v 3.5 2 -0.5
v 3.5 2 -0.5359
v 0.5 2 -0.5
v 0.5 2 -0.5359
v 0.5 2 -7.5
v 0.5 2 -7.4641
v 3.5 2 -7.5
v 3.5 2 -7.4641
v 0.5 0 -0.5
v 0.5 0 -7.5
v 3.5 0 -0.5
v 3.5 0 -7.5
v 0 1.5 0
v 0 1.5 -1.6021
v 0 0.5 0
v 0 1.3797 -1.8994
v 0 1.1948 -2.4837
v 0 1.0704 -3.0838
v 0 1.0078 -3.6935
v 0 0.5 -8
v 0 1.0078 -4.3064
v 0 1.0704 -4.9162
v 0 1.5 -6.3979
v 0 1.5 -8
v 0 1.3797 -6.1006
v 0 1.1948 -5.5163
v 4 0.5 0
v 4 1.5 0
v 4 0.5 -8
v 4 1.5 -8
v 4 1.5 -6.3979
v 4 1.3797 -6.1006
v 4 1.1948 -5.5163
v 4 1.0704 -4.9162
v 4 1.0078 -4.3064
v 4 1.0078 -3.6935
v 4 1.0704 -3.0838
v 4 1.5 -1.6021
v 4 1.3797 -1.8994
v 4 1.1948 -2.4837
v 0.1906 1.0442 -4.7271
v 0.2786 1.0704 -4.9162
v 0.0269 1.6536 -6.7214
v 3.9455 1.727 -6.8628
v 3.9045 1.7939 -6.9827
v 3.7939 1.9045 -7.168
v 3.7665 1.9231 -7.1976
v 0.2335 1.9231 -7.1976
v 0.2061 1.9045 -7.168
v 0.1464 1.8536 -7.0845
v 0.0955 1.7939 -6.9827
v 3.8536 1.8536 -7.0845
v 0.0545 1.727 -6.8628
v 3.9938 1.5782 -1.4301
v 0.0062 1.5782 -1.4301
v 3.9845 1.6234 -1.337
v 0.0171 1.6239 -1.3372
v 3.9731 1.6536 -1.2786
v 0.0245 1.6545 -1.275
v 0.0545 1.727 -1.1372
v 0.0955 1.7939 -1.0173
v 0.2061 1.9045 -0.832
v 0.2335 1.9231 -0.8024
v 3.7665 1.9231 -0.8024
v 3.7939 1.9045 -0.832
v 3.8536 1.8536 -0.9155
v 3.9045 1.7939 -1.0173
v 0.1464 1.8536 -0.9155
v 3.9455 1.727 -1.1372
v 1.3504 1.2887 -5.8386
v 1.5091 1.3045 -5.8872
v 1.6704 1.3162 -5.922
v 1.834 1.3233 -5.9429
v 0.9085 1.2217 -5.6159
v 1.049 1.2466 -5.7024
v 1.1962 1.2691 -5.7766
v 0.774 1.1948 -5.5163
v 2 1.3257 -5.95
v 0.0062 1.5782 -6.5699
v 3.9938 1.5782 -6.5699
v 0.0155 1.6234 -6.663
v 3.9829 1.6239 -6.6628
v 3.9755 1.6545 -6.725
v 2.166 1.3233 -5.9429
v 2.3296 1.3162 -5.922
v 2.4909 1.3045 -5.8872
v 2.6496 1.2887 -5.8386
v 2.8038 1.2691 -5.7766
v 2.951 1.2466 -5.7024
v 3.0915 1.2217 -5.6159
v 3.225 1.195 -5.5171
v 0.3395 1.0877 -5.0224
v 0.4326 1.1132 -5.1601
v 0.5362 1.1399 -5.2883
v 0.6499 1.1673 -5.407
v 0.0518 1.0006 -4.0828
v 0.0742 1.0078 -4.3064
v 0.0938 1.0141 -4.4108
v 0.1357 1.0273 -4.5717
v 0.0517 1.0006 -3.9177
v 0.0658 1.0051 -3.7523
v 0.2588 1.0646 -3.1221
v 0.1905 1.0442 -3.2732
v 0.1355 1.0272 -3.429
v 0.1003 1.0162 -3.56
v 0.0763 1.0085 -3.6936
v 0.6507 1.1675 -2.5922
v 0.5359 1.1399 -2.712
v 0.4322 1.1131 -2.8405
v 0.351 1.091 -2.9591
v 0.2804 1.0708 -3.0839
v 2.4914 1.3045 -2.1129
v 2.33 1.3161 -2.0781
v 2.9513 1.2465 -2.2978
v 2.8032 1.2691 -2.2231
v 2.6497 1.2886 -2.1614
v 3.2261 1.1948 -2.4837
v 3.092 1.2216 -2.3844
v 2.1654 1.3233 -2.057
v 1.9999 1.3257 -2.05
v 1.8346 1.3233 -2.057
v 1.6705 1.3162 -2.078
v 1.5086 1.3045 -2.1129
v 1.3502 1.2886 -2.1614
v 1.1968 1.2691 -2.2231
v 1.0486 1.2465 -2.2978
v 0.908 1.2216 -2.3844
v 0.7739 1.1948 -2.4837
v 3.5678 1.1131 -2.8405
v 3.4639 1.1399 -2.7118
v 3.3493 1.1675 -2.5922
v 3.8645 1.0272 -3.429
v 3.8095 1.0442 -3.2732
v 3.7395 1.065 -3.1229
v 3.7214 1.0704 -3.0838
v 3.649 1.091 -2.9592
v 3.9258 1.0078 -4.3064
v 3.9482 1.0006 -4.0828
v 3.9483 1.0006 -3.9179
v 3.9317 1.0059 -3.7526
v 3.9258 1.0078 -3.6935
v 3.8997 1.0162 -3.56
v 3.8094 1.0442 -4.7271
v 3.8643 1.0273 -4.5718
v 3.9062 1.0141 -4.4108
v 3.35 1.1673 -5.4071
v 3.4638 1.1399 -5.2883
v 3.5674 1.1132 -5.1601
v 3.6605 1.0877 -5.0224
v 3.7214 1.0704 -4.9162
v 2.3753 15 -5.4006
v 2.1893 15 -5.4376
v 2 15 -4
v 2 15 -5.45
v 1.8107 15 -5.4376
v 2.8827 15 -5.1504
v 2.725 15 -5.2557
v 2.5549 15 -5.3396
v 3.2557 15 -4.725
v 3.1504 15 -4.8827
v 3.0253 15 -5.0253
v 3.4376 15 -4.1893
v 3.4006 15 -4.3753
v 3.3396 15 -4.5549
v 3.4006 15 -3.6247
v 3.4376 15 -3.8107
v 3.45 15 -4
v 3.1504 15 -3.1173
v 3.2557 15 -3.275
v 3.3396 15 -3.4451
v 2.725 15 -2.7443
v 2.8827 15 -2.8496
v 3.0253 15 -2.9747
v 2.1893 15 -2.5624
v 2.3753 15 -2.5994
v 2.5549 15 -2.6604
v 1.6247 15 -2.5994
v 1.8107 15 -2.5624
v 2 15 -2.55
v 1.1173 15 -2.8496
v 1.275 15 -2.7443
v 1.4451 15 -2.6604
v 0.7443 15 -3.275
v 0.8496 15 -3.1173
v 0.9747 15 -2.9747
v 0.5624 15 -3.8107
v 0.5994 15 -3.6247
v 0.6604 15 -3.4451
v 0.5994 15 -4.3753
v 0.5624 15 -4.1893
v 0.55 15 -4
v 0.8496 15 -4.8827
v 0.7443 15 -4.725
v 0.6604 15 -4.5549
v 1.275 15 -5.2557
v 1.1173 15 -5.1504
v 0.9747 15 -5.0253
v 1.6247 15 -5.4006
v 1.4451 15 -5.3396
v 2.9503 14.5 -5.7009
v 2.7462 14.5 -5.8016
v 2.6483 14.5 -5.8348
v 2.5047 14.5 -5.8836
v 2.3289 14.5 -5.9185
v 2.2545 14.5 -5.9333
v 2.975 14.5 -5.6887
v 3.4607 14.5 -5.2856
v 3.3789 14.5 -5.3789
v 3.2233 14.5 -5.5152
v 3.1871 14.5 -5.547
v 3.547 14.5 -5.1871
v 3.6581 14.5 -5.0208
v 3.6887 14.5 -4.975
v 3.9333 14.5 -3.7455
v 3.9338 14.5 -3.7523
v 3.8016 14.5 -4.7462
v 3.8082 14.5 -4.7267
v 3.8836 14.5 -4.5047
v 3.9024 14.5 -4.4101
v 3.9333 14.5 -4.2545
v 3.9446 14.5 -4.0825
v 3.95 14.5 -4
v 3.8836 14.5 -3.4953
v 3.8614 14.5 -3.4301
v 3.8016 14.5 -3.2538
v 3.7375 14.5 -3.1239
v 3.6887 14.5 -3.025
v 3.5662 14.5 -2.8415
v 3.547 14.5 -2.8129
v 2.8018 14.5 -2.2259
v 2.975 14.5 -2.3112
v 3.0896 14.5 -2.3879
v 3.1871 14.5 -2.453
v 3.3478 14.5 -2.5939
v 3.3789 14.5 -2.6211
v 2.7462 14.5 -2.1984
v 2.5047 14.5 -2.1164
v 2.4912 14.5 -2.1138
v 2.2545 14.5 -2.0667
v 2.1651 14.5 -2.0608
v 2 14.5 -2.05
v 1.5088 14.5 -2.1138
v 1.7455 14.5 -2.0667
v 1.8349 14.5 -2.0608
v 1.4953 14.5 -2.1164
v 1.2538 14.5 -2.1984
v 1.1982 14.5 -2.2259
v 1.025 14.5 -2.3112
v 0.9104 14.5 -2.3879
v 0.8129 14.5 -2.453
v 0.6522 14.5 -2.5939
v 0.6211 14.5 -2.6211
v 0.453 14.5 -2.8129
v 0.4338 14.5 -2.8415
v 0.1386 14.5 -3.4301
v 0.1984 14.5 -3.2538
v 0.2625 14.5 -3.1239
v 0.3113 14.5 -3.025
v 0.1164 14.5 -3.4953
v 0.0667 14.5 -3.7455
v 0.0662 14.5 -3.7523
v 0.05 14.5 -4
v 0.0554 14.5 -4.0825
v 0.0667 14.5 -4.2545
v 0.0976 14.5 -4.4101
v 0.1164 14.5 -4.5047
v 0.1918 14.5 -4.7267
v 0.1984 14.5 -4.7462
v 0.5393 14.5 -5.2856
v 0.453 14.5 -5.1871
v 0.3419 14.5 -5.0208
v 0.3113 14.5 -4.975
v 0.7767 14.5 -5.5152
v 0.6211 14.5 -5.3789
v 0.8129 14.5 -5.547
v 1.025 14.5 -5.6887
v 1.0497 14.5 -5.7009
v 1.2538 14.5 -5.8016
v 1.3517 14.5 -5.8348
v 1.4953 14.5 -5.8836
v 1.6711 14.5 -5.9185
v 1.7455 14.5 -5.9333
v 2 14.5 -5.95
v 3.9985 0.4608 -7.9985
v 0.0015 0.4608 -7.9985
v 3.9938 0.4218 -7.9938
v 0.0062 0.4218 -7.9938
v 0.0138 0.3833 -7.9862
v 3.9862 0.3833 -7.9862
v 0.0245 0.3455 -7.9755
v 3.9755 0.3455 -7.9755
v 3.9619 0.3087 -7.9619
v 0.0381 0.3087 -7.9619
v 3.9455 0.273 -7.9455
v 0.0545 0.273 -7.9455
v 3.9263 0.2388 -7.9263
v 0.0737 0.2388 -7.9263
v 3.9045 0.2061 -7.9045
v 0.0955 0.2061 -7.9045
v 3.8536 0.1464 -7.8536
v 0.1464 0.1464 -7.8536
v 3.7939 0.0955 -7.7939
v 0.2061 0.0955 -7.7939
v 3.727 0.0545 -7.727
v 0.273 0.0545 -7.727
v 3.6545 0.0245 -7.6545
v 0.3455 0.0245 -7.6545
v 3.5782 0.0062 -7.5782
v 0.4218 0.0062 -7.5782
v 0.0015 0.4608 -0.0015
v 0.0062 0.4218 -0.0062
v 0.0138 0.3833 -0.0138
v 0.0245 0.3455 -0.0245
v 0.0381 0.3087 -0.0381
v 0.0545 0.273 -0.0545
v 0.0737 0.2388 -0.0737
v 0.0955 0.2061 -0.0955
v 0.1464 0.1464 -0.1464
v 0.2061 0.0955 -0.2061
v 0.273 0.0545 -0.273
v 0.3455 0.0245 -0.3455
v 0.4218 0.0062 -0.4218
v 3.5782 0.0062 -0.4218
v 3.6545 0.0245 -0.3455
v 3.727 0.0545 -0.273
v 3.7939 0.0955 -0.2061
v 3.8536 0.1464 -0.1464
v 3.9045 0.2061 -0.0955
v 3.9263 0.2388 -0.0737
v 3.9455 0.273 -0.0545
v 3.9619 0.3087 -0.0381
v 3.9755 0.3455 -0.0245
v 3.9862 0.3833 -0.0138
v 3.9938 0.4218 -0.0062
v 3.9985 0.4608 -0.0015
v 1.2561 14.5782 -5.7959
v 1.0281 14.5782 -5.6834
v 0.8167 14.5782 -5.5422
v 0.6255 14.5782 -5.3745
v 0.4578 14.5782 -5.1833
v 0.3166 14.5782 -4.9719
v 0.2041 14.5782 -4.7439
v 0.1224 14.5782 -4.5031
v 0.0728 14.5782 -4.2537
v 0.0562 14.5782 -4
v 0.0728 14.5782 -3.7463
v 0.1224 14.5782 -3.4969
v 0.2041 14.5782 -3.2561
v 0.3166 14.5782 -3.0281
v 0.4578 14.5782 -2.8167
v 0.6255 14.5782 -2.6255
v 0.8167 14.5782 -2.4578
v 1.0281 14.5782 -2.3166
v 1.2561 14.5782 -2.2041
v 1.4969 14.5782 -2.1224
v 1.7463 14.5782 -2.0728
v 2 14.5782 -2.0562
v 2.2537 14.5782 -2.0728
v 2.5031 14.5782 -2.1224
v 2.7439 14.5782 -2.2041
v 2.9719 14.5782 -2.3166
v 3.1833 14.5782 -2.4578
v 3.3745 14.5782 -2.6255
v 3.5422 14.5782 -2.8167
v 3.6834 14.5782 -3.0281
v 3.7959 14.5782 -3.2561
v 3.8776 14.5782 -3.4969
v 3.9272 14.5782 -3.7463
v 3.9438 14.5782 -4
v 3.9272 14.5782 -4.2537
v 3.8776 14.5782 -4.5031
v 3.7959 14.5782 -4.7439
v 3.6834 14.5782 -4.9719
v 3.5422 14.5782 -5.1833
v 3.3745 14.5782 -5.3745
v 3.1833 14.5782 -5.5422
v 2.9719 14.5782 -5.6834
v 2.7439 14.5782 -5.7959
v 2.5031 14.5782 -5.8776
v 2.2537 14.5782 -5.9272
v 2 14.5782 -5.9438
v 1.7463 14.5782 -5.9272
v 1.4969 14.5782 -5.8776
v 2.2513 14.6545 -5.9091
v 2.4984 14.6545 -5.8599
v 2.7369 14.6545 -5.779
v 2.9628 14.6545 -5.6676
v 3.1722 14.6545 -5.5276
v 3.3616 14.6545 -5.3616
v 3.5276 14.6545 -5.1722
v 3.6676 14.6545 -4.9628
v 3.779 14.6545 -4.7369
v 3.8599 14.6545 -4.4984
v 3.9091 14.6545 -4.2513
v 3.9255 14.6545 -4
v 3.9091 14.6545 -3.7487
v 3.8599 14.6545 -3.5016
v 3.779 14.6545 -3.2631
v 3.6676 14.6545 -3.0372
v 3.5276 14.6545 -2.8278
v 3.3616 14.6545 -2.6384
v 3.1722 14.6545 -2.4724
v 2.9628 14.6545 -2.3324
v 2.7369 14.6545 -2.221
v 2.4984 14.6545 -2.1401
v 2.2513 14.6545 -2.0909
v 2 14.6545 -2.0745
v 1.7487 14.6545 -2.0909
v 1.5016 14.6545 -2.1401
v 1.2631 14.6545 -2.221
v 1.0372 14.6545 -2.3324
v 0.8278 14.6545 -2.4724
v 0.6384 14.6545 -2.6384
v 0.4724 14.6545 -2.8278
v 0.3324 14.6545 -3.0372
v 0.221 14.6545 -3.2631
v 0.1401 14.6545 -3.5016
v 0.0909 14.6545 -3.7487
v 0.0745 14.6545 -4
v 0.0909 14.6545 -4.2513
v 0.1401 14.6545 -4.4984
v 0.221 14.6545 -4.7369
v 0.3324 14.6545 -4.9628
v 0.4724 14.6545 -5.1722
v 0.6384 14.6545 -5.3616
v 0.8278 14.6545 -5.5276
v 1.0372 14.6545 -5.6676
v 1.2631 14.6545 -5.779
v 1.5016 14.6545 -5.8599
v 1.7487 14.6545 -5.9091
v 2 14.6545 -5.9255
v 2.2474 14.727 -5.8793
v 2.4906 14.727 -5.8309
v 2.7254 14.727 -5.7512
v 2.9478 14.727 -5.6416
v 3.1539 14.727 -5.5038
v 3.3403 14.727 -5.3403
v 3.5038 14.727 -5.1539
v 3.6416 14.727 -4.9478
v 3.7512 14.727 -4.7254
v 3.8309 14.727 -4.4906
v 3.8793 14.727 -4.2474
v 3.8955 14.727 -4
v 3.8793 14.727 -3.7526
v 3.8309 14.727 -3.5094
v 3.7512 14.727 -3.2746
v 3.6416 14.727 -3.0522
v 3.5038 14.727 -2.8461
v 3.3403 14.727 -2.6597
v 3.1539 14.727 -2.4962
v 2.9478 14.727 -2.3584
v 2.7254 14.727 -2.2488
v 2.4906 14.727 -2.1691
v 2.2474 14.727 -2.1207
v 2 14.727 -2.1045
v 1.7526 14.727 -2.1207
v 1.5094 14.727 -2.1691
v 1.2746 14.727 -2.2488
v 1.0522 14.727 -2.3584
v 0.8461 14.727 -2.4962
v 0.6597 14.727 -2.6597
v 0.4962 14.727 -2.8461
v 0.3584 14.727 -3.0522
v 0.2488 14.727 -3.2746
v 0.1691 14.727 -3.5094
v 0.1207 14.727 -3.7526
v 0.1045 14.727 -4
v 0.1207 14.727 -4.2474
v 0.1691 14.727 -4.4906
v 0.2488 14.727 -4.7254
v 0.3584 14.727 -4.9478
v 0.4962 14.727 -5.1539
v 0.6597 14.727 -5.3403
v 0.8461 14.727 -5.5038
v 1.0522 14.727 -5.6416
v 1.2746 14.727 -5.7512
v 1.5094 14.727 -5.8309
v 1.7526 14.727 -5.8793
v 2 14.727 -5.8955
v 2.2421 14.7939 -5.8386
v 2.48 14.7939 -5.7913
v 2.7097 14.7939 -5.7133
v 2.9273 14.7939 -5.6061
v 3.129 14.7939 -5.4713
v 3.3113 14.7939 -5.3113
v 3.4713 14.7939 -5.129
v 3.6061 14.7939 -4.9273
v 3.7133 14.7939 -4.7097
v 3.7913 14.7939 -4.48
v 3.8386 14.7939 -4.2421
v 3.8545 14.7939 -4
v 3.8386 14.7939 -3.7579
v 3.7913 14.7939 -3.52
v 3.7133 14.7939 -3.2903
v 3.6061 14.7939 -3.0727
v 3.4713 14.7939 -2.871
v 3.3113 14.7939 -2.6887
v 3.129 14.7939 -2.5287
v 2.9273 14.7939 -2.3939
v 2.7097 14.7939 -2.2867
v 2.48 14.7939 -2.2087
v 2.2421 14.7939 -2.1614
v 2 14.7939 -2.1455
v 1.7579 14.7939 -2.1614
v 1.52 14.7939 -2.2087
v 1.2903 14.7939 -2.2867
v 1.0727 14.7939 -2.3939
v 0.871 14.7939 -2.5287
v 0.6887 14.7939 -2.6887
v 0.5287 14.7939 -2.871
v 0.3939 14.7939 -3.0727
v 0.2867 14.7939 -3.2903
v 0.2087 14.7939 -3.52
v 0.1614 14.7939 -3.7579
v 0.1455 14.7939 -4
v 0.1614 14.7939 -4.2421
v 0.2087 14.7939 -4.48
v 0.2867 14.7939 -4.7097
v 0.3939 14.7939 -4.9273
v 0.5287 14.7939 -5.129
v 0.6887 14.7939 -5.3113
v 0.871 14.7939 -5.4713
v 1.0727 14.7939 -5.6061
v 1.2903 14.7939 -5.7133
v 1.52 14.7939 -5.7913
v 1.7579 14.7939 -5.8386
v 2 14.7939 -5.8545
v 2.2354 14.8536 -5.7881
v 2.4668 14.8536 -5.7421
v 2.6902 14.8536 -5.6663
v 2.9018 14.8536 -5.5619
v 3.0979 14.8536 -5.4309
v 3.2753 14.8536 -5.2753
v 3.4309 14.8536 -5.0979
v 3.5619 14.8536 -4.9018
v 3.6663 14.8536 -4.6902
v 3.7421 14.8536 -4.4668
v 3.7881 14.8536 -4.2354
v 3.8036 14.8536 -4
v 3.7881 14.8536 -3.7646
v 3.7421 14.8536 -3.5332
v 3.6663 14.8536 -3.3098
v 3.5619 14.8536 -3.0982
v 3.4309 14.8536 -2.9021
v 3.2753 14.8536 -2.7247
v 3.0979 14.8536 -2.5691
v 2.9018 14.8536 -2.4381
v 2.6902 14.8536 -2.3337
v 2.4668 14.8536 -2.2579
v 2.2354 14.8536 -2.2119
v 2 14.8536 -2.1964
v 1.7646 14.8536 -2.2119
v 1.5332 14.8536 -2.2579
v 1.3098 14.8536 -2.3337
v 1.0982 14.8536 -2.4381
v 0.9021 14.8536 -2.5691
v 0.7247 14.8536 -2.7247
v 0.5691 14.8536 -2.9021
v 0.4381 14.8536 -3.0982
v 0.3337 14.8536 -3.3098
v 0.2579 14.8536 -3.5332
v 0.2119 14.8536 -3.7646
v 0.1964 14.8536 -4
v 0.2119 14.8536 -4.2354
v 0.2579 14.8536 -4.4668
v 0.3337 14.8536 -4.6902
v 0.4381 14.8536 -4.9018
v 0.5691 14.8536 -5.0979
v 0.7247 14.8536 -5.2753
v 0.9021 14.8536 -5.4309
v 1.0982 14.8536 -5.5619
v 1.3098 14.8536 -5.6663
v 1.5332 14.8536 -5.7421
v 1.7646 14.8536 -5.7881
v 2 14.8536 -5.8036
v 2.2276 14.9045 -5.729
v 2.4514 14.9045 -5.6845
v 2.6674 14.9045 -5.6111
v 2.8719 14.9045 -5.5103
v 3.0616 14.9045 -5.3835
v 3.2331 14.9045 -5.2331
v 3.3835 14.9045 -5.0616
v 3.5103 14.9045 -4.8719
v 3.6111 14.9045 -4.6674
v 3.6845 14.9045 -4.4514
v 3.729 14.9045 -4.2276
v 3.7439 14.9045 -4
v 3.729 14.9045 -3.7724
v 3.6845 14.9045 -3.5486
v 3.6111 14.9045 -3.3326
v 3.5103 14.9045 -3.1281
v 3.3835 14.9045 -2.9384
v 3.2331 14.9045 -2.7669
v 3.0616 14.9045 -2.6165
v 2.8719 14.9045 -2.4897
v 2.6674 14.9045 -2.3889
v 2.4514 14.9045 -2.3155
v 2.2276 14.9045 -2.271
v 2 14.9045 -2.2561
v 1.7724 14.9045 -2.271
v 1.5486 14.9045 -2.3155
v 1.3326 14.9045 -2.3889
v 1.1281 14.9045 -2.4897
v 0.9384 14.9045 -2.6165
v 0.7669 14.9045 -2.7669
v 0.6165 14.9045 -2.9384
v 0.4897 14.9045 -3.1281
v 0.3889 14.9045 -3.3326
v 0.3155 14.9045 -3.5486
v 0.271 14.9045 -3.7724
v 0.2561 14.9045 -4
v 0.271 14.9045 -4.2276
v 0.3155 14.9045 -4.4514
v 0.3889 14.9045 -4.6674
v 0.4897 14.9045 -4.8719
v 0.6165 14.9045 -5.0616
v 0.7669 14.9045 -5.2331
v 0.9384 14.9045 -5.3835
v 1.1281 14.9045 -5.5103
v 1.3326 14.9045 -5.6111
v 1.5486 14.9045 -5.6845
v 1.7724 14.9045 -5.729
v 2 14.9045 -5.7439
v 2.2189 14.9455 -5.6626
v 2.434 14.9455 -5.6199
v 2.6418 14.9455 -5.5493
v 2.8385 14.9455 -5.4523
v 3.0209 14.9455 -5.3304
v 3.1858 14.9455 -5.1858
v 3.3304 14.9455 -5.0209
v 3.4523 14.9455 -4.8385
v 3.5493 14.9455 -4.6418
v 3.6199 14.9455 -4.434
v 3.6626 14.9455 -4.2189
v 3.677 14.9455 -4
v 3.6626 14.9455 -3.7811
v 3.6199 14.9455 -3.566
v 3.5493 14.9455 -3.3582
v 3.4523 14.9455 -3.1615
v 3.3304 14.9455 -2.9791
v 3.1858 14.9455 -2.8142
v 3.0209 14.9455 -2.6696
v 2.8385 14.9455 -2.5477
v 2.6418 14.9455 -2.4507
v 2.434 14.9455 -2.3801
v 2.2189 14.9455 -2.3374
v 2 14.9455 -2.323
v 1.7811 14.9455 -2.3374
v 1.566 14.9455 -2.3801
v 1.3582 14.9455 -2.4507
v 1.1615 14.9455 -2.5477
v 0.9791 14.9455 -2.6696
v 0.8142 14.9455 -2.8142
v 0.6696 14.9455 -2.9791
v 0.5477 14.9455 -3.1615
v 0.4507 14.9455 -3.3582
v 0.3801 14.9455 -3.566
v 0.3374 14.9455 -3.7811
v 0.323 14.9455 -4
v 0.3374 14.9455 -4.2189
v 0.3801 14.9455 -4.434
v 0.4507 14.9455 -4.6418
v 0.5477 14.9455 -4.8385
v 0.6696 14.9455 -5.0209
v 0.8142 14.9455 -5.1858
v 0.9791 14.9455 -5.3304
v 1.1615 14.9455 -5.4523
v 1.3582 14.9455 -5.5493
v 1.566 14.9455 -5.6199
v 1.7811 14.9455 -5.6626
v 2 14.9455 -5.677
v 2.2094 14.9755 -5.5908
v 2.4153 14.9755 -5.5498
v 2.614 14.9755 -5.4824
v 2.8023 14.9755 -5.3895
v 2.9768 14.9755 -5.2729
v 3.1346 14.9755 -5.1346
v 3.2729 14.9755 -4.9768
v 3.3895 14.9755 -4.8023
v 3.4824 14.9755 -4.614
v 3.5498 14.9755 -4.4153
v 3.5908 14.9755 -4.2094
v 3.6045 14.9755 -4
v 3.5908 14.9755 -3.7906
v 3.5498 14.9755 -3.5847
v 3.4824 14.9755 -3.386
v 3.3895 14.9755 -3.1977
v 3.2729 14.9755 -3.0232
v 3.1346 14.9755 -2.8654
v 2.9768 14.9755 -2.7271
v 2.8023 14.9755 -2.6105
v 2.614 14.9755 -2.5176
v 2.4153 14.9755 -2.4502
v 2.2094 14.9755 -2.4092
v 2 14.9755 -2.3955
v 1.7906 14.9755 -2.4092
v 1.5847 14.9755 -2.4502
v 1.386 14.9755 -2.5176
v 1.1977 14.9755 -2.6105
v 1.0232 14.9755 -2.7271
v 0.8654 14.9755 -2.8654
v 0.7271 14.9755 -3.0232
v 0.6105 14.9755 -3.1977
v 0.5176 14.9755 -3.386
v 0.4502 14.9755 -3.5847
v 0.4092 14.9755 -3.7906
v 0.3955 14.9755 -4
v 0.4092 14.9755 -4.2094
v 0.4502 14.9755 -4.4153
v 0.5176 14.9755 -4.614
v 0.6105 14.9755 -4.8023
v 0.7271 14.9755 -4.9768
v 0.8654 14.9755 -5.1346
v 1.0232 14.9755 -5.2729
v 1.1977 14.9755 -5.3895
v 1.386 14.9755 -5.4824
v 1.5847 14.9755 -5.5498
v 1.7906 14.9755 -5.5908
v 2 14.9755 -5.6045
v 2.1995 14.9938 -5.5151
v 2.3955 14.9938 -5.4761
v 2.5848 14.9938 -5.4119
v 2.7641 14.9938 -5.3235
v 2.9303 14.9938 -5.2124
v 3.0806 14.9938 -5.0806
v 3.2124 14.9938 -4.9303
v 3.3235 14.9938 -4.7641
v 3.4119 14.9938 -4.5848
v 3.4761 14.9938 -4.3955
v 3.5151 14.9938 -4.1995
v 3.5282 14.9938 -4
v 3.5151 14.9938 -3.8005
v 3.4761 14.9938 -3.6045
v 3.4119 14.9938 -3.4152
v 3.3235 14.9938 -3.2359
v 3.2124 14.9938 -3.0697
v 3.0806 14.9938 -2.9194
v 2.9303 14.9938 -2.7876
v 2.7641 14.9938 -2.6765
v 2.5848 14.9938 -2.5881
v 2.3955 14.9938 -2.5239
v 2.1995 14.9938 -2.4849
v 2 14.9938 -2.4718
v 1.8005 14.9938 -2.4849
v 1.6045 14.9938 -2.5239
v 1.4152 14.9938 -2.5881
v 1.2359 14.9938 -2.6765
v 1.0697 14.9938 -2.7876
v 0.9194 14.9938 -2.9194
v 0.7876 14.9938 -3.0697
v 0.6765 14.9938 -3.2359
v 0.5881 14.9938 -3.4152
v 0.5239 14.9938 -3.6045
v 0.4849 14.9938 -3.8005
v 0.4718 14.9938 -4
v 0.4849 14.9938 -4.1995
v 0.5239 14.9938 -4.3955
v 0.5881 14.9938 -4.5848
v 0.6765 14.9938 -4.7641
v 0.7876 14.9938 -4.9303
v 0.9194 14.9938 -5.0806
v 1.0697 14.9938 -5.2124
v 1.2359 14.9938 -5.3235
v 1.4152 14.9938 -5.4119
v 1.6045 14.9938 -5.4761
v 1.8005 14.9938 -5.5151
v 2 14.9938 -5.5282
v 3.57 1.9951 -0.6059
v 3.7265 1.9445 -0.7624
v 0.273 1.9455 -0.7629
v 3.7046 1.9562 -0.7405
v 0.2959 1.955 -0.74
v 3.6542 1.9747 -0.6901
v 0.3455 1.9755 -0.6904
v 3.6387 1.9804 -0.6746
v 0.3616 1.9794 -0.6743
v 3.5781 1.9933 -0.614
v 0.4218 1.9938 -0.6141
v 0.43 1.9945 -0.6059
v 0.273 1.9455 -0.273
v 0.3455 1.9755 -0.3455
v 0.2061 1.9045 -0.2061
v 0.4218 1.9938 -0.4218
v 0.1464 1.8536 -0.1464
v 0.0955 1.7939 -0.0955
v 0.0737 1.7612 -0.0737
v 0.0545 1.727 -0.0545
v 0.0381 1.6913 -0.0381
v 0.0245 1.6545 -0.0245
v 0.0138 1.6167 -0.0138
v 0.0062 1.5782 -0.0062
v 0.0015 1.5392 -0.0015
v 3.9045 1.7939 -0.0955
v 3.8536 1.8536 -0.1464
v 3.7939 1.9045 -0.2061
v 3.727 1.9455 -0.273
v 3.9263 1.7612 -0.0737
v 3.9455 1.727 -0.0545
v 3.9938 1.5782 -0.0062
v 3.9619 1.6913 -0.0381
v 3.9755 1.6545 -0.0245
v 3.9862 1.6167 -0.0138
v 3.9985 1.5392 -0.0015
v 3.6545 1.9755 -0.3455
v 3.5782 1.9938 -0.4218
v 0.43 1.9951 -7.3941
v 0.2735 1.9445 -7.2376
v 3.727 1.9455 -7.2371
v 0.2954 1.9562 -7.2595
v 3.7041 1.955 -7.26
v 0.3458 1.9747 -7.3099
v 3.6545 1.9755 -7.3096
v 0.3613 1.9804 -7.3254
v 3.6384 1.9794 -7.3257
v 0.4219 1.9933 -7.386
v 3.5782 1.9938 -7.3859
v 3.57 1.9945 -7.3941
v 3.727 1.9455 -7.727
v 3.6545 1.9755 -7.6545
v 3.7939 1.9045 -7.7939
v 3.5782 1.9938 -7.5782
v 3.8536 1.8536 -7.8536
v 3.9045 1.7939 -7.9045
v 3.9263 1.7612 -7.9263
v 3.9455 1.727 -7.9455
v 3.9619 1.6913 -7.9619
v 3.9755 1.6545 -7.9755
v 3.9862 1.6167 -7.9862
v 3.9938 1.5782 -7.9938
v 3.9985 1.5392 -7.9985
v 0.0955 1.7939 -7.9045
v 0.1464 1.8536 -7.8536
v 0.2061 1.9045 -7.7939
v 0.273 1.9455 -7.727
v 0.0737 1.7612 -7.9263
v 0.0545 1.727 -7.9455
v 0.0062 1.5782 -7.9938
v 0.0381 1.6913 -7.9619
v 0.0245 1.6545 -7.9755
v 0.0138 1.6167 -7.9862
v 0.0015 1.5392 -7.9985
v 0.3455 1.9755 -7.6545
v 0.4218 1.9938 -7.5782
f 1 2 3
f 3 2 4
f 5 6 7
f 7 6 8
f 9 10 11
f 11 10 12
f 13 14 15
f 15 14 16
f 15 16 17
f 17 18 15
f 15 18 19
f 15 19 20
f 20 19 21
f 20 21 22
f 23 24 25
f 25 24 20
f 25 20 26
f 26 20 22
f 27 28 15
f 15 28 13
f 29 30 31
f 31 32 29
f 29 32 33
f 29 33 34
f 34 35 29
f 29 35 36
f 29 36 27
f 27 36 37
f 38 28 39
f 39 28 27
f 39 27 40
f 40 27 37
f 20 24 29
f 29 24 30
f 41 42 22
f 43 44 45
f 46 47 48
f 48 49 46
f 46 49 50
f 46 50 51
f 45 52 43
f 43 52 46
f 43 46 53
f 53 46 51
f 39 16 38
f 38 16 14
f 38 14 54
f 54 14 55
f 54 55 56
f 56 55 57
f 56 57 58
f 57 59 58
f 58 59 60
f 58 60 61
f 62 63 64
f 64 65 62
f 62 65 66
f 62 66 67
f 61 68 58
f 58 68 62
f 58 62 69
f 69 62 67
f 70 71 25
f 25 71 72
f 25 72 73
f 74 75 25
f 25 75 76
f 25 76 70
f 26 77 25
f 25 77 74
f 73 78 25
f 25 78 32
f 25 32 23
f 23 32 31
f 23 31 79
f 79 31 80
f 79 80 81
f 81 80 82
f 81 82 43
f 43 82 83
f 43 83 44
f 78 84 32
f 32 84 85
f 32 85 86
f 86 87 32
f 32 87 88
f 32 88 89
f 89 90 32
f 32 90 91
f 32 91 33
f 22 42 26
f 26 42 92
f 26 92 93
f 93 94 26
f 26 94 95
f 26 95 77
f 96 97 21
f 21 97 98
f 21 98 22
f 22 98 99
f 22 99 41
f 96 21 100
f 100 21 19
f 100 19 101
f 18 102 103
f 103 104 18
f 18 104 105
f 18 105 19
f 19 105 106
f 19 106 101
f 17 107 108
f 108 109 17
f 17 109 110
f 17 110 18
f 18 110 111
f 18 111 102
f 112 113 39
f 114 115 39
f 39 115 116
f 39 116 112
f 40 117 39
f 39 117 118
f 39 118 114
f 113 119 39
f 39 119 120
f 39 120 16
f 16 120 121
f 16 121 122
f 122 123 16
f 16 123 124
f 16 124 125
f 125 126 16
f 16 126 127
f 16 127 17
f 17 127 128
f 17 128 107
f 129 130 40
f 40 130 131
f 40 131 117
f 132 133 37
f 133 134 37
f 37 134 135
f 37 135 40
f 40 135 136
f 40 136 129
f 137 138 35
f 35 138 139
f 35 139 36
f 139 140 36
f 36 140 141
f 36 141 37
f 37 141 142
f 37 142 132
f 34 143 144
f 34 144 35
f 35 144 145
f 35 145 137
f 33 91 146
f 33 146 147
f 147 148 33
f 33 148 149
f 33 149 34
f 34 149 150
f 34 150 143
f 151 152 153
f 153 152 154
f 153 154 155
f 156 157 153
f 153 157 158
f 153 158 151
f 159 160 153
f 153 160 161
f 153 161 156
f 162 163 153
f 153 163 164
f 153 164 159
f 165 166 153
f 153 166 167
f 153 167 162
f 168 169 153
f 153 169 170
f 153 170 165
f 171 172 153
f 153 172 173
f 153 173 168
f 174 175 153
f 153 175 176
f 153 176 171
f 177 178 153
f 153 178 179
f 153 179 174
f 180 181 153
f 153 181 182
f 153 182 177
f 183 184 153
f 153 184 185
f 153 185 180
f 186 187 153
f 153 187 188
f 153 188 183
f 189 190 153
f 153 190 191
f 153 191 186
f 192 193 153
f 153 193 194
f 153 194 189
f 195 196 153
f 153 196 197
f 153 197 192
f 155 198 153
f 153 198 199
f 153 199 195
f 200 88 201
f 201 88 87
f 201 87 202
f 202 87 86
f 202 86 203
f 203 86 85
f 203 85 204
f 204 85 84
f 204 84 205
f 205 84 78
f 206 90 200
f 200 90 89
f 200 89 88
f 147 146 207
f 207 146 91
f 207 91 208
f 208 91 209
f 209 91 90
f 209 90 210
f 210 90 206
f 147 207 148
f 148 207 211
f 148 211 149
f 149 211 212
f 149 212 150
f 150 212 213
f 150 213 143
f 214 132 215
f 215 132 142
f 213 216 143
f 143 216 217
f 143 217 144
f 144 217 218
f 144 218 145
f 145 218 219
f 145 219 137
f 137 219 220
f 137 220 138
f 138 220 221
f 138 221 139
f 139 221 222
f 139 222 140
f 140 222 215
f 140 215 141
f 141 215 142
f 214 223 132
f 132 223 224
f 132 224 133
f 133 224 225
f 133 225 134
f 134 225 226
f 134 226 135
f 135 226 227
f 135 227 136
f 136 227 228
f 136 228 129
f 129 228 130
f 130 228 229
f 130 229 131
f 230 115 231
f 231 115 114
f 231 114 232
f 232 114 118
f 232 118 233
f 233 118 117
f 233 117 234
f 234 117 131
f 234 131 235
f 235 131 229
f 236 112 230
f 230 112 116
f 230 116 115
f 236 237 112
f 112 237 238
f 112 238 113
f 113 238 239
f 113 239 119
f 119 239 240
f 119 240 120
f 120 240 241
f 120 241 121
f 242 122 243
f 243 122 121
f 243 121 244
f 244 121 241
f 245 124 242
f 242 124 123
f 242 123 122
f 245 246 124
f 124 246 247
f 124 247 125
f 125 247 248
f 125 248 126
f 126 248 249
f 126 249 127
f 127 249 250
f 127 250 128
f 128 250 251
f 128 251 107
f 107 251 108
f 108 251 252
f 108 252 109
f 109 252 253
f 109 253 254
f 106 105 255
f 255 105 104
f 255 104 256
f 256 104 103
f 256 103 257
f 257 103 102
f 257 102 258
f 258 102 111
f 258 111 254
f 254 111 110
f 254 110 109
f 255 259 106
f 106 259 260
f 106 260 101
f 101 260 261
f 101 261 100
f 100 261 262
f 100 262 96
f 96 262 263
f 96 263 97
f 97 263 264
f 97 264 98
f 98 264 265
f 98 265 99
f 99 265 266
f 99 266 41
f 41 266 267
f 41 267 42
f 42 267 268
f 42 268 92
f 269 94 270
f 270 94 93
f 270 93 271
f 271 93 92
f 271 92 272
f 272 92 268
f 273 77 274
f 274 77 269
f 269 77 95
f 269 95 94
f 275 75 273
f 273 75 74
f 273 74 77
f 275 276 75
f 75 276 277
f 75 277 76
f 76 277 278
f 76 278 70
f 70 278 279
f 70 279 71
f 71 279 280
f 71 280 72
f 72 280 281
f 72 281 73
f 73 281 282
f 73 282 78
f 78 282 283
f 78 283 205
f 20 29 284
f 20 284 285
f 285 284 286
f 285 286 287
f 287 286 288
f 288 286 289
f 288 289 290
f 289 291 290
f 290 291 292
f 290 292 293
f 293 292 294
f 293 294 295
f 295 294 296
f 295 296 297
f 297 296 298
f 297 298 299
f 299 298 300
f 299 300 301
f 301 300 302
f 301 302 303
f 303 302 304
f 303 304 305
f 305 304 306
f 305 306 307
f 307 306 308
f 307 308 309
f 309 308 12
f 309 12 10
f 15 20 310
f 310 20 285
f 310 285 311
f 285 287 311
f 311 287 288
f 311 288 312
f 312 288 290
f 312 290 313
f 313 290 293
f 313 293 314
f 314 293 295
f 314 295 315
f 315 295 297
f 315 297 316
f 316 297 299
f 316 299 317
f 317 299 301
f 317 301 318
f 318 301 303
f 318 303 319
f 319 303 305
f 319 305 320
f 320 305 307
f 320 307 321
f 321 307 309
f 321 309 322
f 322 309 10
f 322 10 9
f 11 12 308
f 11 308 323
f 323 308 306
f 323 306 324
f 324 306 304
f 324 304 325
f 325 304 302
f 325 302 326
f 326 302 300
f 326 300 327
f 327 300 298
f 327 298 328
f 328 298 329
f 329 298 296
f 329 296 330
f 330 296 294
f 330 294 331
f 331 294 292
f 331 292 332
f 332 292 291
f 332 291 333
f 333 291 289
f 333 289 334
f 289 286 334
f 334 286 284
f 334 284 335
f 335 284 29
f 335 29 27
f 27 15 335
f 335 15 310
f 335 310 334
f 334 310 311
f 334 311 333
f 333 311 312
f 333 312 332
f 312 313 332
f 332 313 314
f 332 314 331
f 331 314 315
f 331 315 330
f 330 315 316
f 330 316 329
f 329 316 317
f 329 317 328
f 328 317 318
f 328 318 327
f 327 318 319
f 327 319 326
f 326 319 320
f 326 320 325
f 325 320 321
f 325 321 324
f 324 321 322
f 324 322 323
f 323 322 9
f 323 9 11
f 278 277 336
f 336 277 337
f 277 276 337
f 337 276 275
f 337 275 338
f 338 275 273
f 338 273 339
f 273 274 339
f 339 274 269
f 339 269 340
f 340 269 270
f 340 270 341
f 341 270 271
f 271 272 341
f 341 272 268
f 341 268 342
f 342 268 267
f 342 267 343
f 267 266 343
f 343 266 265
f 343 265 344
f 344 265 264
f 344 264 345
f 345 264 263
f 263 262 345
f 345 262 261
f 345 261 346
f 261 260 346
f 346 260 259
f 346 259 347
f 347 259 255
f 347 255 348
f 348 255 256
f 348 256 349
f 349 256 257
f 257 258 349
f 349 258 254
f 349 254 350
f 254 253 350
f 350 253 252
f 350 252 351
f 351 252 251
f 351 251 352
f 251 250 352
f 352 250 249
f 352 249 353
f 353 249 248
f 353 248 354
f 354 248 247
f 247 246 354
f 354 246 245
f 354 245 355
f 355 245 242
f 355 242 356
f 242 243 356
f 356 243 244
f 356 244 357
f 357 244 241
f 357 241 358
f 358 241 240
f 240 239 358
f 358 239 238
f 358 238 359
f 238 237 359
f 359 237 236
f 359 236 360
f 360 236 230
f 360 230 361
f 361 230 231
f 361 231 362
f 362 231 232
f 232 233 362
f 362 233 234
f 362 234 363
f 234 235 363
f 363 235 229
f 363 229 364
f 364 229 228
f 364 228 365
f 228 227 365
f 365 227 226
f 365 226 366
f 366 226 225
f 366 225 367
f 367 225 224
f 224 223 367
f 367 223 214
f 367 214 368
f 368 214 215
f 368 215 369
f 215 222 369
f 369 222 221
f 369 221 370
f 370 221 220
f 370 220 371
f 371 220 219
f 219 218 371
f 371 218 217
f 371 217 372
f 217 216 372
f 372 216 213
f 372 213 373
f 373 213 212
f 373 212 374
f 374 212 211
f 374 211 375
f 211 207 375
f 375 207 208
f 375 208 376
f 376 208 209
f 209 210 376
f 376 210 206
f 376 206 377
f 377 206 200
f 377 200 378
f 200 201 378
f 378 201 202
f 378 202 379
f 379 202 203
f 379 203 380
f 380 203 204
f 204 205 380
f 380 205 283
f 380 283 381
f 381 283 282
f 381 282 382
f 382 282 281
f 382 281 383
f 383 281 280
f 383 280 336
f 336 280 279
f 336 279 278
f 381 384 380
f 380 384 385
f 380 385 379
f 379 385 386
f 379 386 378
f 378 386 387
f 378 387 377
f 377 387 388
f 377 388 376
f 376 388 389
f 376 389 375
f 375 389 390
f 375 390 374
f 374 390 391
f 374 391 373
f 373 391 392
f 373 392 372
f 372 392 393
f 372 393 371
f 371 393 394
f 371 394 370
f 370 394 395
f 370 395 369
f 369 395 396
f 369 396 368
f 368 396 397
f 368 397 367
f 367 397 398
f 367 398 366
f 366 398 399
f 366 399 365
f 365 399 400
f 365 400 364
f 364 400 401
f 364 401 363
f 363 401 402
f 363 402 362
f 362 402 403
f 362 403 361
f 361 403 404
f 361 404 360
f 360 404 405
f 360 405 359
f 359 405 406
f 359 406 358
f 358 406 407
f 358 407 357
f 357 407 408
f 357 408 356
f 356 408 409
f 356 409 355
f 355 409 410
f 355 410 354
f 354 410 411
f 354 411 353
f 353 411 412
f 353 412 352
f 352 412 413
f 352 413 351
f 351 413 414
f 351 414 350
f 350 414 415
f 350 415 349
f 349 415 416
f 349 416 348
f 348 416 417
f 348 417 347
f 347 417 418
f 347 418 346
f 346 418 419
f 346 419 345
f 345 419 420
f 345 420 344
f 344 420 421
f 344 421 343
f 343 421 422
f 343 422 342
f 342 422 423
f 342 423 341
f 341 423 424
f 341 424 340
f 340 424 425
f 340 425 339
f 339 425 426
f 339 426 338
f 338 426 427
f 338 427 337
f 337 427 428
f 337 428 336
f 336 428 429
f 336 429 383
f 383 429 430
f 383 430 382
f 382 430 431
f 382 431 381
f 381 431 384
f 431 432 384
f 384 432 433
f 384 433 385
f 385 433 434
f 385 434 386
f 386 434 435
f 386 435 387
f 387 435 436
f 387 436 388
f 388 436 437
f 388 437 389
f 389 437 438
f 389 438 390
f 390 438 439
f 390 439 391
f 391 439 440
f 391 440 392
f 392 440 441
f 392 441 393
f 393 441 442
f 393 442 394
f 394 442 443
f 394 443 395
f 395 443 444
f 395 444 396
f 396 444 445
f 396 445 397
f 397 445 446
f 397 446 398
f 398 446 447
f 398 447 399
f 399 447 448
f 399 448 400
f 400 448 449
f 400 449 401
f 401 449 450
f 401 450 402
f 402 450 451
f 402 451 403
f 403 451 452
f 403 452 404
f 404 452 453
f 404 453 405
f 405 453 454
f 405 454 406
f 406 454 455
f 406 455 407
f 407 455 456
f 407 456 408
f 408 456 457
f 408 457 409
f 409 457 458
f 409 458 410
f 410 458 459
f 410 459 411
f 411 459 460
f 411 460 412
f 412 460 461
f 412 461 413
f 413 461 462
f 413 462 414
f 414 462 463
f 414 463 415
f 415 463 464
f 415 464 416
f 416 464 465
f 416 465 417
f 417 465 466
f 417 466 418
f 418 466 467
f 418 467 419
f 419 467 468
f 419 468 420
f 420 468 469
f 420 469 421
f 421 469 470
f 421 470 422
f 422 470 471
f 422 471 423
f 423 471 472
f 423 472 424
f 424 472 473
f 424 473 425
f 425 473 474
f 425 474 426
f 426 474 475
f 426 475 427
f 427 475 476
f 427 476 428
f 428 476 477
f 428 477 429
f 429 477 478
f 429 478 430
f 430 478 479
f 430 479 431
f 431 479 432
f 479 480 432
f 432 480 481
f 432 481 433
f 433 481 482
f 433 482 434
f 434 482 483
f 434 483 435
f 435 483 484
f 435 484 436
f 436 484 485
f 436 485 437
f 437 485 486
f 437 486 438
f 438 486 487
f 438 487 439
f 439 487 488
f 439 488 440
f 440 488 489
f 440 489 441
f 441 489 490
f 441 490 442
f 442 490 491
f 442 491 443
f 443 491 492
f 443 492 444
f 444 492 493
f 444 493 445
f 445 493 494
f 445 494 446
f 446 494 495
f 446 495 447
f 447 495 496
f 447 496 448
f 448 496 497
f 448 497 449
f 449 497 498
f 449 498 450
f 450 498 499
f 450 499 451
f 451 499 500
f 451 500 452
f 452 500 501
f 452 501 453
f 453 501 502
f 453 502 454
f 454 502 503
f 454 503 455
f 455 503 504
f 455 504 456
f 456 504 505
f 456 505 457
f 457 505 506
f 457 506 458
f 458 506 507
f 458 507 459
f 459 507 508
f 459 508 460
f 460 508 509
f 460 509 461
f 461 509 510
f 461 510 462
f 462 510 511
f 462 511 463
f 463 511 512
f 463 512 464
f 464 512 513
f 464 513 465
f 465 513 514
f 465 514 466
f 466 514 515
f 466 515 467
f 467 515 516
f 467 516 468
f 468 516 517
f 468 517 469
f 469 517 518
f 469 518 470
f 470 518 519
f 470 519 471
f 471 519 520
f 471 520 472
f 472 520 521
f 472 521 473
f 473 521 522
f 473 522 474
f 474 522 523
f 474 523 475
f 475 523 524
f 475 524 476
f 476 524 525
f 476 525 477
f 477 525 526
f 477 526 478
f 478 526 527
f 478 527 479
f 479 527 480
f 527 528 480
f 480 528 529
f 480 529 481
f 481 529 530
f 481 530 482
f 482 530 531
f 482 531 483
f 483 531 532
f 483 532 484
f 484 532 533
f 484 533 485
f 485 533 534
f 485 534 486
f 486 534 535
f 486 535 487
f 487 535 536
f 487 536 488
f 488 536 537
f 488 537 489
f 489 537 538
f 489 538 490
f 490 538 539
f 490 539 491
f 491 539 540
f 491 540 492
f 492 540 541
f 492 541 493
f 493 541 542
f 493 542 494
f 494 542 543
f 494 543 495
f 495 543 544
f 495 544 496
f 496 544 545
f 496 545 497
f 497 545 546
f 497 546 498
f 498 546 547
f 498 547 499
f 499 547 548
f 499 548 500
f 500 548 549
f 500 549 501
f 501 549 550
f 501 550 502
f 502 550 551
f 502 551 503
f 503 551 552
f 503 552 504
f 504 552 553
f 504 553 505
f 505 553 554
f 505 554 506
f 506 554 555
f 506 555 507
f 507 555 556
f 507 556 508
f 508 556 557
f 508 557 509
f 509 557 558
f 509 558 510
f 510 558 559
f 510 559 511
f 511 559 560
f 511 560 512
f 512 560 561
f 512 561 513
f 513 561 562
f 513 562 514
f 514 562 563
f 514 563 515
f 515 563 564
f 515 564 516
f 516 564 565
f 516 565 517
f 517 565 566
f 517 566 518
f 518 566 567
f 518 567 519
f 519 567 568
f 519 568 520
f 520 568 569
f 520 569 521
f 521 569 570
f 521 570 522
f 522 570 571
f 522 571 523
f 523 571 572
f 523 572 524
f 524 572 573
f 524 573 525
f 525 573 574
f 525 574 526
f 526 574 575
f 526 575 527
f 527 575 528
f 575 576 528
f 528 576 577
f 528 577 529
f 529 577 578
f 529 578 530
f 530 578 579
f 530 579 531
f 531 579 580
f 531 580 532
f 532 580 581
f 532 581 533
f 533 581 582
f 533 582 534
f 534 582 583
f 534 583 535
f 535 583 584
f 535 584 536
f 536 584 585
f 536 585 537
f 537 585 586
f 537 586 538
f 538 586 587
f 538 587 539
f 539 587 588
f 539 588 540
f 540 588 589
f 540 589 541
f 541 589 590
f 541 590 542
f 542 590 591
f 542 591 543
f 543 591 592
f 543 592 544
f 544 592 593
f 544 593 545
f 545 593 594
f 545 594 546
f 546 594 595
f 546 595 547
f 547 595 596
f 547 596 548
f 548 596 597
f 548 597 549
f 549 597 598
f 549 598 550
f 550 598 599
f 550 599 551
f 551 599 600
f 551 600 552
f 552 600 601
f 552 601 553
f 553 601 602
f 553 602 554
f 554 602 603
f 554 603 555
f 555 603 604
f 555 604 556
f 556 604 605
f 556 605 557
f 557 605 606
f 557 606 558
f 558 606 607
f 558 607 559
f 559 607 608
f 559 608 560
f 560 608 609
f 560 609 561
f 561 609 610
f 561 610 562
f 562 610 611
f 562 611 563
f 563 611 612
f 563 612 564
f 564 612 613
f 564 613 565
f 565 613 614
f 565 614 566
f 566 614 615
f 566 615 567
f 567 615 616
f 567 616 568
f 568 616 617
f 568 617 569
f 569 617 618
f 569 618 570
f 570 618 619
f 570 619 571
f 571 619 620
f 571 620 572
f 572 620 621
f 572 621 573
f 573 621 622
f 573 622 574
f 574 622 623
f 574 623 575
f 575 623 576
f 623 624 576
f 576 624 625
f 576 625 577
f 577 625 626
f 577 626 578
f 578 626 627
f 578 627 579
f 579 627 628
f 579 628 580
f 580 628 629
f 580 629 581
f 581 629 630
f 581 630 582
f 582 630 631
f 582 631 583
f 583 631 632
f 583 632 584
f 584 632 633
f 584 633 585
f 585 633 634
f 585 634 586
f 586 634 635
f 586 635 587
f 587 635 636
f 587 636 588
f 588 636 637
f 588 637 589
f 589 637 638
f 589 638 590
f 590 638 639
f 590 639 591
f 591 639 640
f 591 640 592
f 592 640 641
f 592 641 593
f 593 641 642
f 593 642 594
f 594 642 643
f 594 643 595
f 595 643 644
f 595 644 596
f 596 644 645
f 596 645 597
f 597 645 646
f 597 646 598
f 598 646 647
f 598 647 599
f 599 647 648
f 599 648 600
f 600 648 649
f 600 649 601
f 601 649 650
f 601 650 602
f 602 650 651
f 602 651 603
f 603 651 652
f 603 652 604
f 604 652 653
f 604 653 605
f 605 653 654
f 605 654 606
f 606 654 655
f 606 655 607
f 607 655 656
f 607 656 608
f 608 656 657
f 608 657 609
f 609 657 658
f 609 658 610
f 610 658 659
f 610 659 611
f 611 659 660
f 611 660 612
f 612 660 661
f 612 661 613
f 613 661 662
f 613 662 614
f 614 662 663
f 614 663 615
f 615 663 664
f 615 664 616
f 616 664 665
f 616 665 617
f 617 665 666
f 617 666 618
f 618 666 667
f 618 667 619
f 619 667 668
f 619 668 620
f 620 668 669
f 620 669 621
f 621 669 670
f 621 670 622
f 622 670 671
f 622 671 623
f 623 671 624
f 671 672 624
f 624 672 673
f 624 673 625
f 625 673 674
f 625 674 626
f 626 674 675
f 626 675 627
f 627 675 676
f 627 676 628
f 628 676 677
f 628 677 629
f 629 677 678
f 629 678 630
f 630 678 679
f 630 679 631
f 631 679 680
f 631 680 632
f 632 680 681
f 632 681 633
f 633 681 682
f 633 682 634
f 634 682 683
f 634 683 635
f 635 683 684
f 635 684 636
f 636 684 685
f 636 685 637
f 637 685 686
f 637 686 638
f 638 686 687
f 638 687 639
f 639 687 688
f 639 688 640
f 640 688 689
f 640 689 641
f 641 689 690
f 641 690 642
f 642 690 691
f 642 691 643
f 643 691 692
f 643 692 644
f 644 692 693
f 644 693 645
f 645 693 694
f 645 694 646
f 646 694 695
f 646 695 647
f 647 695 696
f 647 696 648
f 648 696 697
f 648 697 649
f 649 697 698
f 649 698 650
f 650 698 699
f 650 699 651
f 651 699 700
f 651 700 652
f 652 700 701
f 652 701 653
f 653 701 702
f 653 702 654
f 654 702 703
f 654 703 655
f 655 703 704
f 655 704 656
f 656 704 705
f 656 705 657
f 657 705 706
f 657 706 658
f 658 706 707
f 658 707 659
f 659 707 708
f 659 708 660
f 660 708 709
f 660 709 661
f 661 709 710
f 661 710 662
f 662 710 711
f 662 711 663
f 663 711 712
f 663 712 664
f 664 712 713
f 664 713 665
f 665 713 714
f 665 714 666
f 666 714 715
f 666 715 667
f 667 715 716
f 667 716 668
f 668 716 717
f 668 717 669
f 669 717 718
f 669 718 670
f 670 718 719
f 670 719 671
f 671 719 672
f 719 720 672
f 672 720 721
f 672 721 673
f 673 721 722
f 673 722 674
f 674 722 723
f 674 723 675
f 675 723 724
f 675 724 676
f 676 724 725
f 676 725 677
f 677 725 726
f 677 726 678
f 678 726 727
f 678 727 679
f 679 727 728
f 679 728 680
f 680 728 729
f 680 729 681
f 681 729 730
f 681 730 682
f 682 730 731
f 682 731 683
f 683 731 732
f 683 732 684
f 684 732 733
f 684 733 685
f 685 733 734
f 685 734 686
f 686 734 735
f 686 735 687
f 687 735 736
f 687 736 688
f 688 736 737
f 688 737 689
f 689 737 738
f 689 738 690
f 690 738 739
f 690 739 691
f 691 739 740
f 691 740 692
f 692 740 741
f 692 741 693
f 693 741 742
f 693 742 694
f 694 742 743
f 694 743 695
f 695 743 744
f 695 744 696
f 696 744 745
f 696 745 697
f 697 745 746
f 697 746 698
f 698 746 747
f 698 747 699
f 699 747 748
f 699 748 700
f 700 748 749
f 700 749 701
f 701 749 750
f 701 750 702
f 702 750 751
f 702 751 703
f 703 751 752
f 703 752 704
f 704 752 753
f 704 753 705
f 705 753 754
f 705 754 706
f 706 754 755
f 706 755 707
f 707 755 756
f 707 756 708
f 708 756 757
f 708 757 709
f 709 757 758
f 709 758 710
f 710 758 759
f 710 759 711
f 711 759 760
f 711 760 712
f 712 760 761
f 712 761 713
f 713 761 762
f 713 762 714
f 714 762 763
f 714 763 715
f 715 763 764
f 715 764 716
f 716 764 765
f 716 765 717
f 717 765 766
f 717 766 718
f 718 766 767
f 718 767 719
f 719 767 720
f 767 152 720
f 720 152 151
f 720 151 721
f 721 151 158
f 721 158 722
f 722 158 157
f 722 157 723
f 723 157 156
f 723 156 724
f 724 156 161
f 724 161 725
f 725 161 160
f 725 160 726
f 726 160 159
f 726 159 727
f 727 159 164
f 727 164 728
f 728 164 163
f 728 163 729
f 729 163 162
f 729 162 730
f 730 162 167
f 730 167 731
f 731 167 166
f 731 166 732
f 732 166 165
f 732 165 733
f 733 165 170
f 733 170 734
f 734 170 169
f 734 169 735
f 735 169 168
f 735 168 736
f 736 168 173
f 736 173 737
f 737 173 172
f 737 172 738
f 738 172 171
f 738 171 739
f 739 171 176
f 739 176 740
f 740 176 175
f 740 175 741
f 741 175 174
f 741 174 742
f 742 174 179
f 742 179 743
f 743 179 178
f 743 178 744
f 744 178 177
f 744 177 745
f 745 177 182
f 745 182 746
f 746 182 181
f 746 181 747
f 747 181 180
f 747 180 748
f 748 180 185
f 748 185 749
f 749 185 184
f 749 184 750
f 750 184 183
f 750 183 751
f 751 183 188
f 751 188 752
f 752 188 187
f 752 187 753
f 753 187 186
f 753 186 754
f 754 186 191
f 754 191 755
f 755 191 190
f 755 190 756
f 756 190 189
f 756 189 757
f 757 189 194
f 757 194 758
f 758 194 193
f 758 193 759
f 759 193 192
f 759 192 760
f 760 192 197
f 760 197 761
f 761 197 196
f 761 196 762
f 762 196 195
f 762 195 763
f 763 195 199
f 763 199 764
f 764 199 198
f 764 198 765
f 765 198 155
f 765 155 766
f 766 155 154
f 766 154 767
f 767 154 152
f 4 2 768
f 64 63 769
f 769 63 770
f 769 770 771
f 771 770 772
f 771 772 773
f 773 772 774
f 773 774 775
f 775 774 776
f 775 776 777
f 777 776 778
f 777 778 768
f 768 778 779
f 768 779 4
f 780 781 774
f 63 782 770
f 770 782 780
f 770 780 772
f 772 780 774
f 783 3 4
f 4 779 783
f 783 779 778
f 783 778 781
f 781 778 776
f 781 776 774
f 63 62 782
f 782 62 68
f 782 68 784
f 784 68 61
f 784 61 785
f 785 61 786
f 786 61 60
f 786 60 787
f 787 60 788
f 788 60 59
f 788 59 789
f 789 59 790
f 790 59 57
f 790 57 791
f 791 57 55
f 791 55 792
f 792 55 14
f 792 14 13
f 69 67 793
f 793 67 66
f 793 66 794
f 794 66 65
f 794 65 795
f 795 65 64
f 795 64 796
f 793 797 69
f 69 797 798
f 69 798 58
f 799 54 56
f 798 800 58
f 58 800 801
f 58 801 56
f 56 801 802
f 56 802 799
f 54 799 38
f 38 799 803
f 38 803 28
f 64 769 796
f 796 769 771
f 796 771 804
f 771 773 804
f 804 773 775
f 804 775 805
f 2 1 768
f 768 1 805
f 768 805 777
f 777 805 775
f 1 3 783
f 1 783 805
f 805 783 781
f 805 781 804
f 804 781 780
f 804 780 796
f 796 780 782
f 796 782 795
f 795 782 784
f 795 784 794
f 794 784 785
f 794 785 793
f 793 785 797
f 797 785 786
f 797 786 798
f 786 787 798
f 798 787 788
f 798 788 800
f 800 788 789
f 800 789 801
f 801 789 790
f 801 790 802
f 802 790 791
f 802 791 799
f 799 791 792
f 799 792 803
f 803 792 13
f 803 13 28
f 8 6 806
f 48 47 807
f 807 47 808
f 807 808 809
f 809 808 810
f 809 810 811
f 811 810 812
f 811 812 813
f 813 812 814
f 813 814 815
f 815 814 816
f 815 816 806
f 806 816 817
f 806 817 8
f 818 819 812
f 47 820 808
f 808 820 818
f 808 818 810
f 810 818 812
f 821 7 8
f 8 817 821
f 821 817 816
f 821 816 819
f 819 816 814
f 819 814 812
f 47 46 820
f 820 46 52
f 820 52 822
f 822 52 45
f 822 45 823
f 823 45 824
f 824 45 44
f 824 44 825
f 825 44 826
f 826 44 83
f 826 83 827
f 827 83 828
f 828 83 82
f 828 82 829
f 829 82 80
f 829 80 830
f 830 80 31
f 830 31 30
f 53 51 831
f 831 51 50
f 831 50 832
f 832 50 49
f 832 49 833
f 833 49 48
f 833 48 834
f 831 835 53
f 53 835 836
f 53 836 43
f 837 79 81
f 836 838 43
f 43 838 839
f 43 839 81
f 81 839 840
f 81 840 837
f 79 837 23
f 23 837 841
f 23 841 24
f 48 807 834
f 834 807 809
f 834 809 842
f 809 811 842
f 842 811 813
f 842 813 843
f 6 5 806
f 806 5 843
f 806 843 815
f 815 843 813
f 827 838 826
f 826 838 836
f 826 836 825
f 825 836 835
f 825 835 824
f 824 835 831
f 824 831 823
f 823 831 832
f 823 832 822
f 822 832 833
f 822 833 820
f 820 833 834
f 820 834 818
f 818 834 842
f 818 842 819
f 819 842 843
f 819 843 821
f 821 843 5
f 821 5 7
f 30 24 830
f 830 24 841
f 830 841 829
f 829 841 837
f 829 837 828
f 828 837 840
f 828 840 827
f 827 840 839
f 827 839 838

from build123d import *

# Parameters (mm, degrees)
SKETCH_1_W          = 4
SKETCH_1_H          = 8
SKETCH_1_R          = 1.95
EXTRUDE_1_DEPTH     = 2
SKETCH_3_R          = 6
CUT_EXTRUDE_1_DEPTH = 10.16515139
SKETCH_2_R          = 1.95
EXTRUDE_3_DEPTH     = 15
FILLET_3_R          = 0.5


with BuildPart() as part:
    # 草图1 → 凸台-拉伸1 (new body)
    with BuildSketch(Plane(origin=(0, 0, 0), x_dir=(1, 0, 0), z_dir=(0, 1, 0))):
        with Locations((2, 4)):
            Rectangle(SKETCH_1_W, SKETCH_1_H)
        with Locations(Location((2, 4, 0), (0, 0, 270))):
            Circle(SKETCH_1_R, mode=Mode.SUBTRACT)
    extrude(amount=EXTRUDE_1_DEPTH)

    # 草图3 → 切除-拉伸1 (cut, through all)
    with BuildSketch(Plane.ZY):
        with Locations((-4, 7)):
            Circle(SKETCH_3_R)
    extrude(amount=-CUT_EXTRUDE_1_DEPTH, mode=Mode.SUBTRACT)

    # 草图2 → 凸台-拉伸3 (add)
    with BuildSketch(Plane.XZ):
        with Locations(Location((2, -4, 0), (0, 0, 270))):
            Circle(SKETCH_2_R)
    extrude(amount=-EXTRUDE_3_DEPTH)

    # 圆角3
    fillet_3_edges = [part.edges().sort_by_distance(p)[0] for p in [
        (4, 2, -0.341687605),
        (2, 2, -8),
        (4, 2, -7.658312395),
        (0, 2, -0.341687605),
        (2, 2, -0.68337521),
        (2, 2, -7.31662479),
        (2, 15, -2.05),
        (0, 2, -7.658312395),
        (2, 0, -8),
        (4, 0, -4),
        (2, 0, 0),
        (0, 0, -4),
        (2, 2, 0),
    ]]
    fillet(fillet_3_edges, radius=FILLET_3_R)


solid = part.part
